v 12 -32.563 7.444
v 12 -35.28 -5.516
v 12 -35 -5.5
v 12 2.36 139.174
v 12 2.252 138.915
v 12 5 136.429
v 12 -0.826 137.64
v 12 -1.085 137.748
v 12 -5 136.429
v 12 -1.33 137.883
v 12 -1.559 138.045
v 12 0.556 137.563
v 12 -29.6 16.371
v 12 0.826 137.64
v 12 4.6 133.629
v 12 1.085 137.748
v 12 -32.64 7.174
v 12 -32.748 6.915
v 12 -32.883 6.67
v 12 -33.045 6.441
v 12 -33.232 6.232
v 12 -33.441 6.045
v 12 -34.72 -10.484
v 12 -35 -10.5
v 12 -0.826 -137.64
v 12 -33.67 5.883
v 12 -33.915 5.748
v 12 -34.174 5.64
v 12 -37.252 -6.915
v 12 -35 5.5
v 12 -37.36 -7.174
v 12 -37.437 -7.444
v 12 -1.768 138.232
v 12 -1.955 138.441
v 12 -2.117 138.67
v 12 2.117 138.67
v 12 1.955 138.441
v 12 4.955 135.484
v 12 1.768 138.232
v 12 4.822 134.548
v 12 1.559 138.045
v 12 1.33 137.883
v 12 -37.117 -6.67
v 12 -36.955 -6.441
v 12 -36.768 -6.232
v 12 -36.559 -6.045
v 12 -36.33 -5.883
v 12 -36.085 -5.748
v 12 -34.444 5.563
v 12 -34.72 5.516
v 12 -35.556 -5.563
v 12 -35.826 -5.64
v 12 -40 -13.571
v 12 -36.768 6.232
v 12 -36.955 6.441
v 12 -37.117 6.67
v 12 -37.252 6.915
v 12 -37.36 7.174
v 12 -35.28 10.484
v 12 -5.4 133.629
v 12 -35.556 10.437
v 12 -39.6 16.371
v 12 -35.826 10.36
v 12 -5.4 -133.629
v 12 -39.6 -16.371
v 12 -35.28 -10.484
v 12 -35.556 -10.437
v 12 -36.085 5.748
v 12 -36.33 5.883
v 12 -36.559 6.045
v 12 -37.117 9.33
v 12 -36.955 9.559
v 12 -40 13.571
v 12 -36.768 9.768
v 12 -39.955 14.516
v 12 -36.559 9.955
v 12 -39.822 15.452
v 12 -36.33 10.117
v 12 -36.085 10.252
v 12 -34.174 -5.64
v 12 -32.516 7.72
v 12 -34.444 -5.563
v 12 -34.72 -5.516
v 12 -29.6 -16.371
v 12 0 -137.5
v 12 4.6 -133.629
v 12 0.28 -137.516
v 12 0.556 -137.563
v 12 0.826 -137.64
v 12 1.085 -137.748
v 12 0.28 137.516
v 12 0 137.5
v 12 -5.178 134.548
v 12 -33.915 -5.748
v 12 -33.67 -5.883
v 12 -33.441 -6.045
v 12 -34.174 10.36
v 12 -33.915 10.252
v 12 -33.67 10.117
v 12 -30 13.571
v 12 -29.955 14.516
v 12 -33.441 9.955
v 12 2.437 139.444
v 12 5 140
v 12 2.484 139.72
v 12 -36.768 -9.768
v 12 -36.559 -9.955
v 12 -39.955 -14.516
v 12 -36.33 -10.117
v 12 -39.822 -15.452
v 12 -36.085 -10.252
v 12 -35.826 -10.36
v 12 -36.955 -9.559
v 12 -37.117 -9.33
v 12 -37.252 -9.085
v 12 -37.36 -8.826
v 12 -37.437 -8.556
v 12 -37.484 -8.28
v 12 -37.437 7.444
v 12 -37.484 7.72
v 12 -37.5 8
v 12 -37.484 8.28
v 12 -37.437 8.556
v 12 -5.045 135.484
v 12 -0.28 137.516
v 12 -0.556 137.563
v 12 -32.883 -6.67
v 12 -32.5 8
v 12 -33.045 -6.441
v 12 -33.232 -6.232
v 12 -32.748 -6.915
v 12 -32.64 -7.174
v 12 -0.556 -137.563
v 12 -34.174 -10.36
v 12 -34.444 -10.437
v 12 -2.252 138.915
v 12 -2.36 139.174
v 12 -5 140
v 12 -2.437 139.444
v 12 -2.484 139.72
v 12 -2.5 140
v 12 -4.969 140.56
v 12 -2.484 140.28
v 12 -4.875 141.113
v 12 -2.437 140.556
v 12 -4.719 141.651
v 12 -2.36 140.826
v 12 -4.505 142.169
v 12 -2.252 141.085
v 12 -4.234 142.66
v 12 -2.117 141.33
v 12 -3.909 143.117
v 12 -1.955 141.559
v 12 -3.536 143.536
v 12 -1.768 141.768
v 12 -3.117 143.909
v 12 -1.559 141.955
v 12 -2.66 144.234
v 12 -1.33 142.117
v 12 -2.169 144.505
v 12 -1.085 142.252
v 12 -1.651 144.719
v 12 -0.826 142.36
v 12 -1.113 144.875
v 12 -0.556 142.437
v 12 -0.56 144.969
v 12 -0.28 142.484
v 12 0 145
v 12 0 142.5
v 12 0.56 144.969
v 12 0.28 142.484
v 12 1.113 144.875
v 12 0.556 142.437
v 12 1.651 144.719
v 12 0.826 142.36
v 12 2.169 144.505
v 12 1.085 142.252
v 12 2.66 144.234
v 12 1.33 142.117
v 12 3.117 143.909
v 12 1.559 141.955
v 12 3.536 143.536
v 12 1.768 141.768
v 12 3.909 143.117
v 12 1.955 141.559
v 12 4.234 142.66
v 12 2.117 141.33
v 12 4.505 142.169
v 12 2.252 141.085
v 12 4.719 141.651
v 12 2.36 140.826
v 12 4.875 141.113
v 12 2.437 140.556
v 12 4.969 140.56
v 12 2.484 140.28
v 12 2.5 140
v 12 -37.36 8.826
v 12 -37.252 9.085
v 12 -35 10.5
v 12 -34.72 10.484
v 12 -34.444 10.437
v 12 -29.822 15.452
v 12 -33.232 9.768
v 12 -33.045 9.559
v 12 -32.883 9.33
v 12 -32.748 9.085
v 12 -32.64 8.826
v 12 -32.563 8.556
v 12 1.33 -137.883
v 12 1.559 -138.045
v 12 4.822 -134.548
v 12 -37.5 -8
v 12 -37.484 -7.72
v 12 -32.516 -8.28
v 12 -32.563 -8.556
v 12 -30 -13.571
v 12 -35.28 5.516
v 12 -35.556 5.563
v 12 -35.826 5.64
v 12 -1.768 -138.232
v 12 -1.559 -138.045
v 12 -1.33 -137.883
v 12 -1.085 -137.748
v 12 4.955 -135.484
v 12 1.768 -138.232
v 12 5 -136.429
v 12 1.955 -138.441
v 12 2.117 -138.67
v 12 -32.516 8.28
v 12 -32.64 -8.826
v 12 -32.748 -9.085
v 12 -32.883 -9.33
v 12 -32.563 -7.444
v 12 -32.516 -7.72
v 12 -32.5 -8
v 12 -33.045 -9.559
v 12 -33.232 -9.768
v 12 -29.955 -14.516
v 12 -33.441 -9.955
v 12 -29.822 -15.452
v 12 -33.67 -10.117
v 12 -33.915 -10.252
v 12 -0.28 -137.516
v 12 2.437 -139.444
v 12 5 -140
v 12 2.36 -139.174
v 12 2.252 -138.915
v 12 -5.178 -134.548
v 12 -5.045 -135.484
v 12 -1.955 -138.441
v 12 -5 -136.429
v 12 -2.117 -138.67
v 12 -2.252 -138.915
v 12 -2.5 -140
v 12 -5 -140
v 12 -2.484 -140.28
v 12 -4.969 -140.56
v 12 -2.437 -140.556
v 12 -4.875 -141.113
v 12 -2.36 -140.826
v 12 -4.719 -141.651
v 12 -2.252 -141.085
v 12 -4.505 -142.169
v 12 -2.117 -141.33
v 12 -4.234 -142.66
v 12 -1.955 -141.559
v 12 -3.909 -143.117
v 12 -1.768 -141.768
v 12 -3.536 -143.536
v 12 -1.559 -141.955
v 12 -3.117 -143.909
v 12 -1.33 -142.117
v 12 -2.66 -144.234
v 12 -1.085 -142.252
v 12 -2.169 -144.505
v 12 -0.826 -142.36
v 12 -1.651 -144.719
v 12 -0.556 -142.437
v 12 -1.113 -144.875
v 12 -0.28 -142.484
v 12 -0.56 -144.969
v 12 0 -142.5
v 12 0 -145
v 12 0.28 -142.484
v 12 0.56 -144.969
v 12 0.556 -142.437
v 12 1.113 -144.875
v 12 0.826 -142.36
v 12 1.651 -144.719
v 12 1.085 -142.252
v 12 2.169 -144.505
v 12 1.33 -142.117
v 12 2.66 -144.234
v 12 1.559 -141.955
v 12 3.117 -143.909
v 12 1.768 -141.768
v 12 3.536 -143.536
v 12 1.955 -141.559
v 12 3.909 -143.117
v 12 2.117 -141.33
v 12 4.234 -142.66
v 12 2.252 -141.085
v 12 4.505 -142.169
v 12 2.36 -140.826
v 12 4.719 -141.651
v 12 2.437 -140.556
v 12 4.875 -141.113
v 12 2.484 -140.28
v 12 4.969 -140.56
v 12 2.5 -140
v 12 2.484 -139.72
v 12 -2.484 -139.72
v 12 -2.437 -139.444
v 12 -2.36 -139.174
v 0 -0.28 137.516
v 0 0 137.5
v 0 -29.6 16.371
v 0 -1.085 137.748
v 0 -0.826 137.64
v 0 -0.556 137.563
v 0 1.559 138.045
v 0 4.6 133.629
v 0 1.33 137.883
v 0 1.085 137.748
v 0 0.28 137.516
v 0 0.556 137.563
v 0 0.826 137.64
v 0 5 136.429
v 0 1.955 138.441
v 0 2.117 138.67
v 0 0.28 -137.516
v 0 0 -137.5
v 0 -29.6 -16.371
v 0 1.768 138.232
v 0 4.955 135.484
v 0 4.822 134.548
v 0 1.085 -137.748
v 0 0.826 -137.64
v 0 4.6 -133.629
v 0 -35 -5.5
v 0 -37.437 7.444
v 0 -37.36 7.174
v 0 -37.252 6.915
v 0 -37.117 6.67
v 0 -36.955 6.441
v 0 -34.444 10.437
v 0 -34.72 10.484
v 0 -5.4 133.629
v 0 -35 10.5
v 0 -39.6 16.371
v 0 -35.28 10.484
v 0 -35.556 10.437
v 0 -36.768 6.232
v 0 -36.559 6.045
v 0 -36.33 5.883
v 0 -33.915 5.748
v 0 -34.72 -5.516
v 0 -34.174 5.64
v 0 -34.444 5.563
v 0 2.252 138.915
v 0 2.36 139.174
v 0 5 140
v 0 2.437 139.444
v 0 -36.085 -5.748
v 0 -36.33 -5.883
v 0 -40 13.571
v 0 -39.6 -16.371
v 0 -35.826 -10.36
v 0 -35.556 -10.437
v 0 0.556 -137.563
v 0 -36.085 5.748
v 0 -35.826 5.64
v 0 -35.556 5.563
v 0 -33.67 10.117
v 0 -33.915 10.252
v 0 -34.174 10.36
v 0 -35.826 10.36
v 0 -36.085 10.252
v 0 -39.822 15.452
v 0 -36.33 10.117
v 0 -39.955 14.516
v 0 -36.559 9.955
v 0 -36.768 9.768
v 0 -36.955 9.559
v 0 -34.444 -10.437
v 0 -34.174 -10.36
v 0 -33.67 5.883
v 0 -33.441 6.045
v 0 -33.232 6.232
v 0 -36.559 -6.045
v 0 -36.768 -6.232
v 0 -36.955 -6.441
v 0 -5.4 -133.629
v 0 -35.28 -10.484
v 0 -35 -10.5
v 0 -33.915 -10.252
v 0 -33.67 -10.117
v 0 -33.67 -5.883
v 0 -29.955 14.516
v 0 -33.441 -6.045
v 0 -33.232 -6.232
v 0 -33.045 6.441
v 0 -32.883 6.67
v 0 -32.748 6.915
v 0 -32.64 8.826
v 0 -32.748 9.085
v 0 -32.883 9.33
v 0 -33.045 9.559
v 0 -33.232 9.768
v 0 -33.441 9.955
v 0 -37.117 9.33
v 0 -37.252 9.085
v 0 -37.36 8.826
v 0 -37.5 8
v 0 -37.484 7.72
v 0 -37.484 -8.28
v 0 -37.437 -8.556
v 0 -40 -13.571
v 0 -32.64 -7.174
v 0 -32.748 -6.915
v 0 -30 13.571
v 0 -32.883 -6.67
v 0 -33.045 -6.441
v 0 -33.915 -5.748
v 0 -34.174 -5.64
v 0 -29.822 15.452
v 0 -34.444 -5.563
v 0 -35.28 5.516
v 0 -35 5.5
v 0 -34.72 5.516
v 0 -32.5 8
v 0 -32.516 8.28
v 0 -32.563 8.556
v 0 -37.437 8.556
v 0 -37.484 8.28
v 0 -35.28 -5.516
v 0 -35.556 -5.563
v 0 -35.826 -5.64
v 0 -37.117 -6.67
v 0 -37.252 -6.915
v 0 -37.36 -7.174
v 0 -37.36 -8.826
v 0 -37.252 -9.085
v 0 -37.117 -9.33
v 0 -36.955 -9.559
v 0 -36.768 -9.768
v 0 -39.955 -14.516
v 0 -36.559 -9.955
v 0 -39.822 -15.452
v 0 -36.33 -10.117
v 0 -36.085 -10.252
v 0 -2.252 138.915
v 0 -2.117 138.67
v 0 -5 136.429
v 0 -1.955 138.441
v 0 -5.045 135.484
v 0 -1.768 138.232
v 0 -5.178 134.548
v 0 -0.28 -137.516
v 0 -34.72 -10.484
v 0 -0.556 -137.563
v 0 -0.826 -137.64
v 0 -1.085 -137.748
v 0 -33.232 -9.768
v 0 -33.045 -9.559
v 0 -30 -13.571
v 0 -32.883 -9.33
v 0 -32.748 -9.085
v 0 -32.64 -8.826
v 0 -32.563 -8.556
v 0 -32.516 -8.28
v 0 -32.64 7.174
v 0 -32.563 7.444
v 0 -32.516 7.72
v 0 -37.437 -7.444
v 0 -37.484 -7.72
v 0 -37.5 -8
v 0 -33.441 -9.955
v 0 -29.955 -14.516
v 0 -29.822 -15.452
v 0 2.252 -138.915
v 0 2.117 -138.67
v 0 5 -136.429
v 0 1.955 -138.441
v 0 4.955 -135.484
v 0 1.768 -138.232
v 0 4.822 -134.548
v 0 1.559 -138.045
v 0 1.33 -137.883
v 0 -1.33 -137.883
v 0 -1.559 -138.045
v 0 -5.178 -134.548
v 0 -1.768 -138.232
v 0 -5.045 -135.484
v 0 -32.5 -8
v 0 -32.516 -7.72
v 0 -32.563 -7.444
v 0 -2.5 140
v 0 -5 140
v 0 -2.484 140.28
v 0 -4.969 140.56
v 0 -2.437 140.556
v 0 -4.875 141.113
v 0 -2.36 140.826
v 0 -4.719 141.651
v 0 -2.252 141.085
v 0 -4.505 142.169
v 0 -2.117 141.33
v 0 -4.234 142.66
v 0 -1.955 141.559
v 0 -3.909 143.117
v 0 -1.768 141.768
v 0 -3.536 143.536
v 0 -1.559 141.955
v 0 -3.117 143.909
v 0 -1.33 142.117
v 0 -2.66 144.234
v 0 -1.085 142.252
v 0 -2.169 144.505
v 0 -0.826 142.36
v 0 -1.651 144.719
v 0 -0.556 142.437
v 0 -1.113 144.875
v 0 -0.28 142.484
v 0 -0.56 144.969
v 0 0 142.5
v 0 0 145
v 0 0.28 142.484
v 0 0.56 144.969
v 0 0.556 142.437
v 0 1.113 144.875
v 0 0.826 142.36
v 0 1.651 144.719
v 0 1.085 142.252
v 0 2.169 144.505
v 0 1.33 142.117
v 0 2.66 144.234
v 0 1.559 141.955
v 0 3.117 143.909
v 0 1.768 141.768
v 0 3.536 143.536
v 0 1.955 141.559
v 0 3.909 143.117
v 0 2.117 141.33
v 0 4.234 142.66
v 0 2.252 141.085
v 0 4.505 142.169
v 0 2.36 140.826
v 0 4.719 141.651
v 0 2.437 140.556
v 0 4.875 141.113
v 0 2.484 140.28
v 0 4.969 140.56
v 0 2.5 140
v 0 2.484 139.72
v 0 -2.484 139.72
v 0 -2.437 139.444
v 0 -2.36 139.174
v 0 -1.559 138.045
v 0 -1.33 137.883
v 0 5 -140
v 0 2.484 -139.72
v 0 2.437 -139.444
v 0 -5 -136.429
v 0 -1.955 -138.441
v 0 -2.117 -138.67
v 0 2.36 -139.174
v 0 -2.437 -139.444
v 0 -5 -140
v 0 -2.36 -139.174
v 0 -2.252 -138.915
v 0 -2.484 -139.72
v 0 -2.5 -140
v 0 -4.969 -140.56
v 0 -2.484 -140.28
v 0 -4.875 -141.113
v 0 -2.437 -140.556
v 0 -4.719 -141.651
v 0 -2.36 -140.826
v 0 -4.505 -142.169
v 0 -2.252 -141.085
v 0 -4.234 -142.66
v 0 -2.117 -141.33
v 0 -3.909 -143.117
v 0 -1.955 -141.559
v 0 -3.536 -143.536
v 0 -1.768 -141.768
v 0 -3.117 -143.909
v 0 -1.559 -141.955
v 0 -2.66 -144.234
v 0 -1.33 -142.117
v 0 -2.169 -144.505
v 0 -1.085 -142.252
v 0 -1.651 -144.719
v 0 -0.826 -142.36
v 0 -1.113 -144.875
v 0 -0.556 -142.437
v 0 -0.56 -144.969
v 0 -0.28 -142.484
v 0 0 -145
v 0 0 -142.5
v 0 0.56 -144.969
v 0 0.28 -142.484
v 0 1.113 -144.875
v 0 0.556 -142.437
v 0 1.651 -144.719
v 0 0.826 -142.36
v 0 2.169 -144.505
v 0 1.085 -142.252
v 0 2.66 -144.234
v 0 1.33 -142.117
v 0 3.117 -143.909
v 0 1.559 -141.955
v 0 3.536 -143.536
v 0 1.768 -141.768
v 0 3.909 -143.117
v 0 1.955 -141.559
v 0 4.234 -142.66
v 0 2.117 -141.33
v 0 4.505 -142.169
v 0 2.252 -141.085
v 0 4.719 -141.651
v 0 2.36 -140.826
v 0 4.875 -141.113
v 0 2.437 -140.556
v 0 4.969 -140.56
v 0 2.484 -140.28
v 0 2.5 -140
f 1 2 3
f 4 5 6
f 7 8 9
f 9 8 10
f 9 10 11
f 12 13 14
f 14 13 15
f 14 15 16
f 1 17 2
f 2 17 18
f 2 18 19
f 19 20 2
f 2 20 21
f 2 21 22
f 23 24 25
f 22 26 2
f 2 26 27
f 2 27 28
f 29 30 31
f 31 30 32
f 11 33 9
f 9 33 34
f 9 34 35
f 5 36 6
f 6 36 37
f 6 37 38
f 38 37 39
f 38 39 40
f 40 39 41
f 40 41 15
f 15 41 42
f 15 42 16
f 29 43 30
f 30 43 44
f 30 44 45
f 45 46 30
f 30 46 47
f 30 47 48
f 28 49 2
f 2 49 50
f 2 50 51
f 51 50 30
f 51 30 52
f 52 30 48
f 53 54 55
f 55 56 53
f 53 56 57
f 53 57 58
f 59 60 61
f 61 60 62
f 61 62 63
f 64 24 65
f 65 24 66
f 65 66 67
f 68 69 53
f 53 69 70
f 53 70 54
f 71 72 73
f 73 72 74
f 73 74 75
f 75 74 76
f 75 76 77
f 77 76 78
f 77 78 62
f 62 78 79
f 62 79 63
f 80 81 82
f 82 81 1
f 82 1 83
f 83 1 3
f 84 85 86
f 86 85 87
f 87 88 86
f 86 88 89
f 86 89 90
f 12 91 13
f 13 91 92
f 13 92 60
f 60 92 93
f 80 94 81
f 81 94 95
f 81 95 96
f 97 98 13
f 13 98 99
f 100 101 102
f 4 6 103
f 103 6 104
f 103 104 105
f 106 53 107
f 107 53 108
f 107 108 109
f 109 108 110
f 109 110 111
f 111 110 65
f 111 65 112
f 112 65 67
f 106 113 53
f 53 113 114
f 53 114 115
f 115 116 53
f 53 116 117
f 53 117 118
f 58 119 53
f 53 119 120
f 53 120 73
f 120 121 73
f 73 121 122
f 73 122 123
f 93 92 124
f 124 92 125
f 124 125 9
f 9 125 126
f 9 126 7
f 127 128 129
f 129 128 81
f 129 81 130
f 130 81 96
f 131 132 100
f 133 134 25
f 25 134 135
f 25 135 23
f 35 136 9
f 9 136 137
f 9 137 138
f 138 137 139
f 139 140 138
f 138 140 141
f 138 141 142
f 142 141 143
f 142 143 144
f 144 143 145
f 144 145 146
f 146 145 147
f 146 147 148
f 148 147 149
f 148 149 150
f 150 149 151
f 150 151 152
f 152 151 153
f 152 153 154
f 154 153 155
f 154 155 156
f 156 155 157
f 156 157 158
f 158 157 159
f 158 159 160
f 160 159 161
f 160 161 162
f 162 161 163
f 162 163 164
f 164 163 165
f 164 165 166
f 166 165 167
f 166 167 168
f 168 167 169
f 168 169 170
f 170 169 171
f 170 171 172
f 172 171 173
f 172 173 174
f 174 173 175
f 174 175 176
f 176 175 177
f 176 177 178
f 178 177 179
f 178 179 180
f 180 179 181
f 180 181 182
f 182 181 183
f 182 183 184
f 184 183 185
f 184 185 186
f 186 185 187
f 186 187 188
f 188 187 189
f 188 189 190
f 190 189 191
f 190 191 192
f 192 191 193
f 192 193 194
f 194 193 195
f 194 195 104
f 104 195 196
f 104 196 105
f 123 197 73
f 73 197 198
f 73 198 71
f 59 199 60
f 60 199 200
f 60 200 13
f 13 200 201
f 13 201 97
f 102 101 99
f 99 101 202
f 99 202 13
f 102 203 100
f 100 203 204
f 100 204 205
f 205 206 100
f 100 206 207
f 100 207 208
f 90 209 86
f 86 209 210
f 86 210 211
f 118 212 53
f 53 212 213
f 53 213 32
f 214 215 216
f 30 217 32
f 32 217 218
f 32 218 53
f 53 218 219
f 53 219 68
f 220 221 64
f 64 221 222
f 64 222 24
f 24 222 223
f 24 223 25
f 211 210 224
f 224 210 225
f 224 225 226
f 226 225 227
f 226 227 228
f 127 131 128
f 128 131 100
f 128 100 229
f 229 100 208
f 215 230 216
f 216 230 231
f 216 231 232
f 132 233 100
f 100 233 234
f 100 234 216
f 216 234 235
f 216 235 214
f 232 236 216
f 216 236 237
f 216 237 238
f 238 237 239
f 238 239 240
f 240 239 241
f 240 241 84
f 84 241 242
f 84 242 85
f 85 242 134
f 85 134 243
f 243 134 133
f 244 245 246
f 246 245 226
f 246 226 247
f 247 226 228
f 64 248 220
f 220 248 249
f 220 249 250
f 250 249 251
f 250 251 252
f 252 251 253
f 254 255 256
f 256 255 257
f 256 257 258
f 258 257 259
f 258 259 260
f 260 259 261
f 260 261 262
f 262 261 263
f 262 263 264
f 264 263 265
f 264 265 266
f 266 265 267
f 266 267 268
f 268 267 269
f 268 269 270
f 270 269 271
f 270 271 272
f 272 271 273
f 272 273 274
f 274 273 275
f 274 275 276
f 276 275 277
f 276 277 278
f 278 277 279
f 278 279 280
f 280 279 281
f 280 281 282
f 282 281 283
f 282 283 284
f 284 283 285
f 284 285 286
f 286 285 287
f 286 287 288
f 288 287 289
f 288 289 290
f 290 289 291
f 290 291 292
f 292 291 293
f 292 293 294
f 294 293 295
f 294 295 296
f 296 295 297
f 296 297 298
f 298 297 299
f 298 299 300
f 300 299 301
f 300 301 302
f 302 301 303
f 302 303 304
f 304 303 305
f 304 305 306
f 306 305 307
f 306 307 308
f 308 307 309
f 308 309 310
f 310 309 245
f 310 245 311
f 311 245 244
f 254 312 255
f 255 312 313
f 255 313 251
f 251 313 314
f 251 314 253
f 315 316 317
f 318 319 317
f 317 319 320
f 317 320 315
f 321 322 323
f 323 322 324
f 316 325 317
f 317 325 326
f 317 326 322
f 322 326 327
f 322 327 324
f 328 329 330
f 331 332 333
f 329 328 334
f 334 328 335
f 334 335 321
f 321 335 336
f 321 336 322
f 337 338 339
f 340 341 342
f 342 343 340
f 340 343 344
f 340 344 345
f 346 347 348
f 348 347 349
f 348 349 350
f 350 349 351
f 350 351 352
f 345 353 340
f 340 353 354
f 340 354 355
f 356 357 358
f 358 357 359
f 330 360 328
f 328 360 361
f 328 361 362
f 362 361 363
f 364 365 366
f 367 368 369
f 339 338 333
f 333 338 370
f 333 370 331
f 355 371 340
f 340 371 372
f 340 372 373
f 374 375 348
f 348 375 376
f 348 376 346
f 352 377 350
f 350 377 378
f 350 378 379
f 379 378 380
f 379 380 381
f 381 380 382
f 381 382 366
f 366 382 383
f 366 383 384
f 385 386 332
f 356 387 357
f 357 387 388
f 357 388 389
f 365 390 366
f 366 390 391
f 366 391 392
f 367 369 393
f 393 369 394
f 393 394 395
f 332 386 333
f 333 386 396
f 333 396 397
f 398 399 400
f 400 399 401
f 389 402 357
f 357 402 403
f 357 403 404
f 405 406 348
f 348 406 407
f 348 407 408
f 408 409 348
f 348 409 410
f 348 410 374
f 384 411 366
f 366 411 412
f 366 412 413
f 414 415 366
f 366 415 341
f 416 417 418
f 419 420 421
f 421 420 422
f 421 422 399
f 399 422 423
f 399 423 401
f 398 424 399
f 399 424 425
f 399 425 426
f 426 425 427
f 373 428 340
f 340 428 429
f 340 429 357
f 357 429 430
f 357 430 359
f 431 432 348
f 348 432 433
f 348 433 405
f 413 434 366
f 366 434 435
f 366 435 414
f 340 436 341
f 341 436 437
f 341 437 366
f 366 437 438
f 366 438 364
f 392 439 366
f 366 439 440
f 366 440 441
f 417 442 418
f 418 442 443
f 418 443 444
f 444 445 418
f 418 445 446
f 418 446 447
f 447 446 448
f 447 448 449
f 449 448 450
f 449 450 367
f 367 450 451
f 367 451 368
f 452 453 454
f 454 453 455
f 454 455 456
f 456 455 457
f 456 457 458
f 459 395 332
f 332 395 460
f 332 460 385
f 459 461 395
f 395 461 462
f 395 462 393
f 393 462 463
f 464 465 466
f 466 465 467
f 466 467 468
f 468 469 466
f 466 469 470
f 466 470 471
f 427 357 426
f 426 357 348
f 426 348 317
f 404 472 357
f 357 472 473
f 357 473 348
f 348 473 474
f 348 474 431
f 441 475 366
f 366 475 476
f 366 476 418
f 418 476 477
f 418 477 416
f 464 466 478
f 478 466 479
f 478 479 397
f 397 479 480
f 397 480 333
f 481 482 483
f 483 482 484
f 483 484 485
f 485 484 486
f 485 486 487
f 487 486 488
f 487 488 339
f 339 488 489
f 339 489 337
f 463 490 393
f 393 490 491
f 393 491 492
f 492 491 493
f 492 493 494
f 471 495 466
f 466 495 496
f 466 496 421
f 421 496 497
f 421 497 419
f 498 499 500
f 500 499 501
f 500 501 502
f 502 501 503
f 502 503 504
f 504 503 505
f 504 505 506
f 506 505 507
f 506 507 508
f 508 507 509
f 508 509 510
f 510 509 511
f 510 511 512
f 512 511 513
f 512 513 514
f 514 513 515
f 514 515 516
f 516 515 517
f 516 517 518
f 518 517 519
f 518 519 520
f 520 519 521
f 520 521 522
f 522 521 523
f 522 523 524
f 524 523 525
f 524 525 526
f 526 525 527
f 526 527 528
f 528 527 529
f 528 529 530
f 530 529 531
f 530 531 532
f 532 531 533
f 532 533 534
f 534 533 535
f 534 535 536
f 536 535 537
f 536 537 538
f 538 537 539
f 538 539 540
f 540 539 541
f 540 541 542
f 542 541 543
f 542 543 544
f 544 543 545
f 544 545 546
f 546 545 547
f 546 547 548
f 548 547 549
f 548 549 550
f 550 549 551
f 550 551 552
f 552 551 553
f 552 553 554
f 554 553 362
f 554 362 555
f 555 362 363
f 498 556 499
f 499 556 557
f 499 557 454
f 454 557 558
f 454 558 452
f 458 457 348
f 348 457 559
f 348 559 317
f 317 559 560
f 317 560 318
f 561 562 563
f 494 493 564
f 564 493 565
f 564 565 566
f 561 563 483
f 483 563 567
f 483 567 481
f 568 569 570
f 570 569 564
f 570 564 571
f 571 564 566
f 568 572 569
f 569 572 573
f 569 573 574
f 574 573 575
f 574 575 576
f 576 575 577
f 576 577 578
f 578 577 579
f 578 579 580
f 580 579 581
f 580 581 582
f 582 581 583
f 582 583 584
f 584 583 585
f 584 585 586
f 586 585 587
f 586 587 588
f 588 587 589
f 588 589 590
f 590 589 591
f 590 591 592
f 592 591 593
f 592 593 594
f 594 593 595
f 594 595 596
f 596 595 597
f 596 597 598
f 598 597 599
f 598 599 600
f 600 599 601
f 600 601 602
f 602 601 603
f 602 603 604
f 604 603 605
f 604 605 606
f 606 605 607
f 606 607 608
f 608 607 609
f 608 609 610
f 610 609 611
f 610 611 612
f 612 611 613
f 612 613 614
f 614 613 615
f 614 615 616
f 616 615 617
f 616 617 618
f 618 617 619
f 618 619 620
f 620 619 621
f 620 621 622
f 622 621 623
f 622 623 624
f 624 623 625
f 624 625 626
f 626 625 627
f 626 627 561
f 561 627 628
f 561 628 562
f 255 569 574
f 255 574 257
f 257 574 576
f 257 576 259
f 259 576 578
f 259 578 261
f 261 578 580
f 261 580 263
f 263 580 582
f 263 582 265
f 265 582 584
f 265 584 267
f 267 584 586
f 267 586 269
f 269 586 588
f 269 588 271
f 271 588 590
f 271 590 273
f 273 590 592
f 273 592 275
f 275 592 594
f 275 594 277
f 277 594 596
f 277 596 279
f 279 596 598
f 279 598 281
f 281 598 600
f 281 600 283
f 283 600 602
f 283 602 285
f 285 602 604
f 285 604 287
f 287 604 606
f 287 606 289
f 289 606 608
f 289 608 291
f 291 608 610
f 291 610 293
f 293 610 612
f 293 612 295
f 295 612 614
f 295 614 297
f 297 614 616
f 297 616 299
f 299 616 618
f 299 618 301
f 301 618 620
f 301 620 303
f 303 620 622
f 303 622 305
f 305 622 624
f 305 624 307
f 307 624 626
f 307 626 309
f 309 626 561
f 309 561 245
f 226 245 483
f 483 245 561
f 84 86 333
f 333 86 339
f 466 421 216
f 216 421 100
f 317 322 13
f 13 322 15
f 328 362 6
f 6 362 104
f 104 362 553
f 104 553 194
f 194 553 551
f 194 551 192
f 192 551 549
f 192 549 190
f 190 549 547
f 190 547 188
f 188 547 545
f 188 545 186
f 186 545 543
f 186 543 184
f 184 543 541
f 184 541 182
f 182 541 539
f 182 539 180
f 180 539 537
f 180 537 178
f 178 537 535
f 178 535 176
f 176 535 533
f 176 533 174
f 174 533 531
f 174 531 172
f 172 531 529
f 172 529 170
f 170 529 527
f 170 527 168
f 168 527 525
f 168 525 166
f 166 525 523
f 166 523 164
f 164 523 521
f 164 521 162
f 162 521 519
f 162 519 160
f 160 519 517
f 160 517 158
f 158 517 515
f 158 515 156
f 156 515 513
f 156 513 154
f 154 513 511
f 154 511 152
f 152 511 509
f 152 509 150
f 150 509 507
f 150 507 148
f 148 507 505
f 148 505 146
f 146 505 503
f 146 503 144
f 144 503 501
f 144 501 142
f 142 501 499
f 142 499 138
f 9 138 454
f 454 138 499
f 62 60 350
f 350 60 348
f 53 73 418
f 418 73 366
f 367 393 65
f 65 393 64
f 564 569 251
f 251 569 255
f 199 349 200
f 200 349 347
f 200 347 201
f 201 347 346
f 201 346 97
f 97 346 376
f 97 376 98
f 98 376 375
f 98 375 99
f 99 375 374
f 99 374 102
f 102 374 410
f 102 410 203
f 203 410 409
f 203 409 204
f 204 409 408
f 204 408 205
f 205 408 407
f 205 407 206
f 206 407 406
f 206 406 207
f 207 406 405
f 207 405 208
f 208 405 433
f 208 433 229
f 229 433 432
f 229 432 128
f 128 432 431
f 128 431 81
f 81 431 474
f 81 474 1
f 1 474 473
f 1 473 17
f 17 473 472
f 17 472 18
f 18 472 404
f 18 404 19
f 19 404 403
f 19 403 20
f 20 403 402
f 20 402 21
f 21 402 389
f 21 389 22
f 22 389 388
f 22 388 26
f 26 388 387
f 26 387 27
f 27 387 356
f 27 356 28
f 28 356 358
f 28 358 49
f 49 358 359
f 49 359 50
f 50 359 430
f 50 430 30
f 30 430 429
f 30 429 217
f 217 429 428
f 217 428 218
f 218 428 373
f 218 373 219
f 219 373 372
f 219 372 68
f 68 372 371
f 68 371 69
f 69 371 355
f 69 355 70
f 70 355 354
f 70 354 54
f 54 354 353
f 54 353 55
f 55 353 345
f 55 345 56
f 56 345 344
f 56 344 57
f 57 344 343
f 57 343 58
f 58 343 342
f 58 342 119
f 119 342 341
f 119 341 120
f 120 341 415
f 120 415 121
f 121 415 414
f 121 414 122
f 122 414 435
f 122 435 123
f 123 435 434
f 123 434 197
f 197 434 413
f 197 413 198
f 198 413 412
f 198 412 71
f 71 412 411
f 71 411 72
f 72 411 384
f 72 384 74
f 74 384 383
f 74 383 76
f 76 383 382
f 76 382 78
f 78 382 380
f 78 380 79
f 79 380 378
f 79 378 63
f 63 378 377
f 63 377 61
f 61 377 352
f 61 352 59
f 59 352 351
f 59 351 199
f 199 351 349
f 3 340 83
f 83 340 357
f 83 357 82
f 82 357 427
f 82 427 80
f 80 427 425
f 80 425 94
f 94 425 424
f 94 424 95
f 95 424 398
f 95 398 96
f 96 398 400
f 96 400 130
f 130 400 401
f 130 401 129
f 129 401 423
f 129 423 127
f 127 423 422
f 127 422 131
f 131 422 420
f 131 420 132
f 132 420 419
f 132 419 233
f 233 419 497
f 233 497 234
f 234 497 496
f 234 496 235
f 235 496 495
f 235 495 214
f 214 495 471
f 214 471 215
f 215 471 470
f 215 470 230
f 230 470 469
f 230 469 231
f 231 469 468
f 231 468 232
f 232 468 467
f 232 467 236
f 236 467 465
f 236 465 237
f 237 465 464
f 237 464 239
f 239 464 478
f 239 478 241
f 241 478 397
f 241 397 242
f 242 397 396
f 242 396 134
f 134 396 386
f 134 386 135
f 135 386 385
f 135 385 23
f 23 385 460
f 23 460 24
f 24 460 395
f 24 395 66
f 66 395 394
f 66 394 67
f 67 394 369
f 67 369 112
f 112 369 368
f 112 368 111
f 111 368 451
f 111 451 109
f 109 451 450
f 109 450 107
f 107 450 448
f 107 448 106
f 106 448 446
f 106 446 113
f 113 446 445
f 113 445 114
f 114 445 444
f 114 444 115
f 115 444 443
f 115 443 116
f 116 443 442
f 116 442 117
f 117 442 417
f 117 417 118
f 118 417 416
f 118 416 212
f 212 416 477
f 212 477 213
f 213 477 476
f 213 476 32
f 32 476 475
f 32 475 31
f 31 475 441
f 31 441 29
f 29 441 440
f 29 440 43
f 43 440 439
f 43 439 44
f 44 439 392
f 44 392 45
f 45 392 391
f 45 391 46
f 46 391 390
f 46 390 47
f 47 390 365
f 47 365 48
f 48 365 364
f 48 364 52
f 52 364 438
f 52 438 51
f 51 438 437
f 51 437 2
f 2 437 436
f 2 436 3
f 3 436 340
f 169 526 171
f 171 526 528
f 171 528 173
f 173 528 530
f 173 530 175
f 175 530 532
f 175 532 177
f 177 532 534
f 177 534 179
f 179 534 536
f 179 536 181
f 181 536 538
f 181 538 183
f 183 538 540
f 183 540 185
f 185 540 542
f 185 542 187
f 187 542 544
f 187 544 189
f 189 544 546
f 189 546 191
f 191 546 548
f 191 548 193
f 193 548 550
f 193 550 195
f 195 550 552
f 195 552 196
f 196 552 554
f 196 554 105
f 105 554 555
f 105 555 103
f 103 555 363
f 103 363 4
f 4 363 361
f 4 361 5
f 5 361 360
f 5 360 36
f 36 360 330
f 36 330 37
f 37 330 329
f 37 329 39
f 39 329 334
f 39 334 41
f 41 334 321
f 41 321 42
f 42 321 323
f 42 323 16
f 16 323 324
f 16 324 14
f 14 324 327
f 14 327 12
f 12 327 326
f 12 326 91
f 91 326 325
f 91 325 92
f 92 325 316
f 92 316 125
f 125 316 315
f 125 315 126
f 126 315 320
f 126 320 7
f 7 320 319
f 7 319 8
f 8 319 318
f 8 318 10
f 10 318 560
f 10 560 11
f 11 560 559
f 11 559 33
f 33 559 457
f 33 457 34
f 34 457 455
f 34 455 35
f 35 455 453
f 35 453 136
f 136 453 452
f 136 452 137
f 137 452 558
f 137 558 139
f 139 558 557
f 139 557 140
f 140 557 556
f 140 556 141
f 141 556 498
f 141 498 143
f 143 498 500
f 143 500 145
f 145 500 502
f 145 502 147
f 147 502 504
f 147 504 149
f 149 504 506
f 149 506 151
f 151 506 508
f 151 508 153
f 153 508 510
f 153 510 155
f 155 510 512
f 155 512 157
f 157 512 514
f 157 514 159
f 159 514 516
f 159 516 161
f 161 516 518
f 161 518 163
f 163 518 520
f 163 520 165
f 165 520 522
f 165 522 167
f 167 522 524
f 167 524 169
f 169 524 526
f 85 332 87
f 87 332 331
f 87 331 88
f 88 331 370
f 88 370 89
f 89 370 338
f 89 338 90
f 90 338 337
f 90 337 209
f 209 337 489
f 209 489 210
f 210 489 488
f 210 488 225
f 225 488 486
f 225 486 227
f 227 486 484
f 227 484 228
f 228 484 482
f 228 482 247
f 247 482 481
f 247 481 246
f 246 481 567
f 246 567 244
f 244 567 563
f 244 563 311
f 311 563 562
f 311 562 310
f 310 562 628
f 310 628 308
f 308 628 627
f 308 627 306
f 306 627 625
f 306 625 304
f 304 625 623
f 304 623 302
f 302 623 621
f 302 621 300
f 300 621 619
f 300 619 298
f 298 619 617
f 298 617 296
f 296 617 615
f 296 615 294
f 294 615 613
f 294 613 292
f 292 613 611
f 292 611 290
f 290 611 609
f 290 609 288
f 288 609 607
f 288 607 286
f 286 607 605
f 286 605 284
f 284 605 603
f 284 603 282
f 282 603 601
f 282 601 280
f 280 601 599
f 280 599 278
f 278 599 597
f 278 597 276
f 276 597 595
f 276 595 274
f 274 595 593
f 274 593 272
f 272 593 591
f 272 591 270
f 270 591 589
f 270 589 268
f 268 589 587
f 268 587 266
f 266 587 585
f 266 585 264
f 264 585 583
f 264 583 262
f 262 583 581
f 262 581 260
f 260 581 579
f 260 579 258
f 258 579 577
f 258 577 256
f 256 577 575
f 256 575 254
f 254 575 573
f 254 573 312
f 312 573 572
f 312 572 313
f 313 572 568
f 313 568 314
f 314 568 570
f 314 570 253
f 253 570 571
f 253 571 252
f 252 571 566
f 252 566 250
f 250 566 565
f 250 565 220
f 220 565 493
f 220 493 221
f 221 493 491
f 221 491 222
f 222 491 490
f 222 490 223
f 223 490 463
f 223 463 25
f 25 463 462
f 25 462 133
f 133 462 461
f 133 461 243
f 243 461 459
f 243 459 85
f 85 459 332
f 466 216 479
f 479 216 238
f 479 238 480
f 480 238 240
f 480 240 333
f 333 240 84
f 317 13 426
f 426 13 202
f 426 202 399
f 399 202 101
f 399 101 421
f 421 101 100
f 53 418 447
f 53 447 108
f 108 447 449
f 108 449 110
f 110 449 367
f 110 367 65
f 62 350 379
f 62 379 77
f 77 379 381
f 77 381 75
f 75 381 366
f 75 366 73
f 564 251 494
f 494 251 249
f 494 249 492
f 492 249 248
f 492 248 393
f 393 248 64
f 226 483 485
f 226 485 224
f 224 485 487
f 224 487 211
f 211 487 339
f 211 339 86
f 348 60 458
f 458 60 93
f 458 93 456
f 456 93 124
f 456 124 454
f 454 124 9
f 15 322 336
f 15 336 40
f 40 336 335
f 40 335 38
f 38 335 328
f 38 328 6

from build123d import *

# Parameters (mm, degrees)
CROQUIS1_R              = 2.5
SALIENTE_EXTRUIR1_DEPTH = 12
REDONDEO1_R             = 10


with BuildPart() as part:
    # Croquis1 → Saliente-Extruir1 (new body)
    with BuildSketch(Plane(origin=(0, 0, 0), x_dir=(0, 0, -1), z_dir=(1, 0, 0))):
        with BuildLine():
            Line((-15, -30), (15, -30))
            Line((15, -30), (135, 5))
            Line((135, 5), (140, 5))
            ThreePointArc((140, 5), (145, 0), (140, -5))
            Line((140, -5), (135, -5))
            Line((135, -5), (15, -40))
            Line((15, -40), (-15, -40))
            Line((-15, -40), (-135, -5))
            Line((-135, -5), (-140, -5))
            ThreePointArc((-140, -5), (-145, 0), (-140, 5))
            Line((-140, 5), (-135, 5))
            Line((-135, 5), (-15, -30))
        make_face()
        with Locations((-8, -35)):
            Circle(CROQUIS1_R, mode=Mode.SUBTRACT)
        with Locations((8, -35)):
            Circle(CROQUIS1_R, mode=Mode.SUBTRACT)
        with Locations((-140, 0)):
            Circle(CROQUIS1_R, mode=Mode.SUBTRACT)
        with Locations((140, 0)):
            Circle(CROQUIS1_R, mode=Mode.SUBTRACT)
    extrude(amount=SALIENTE_EXTRUIR1_DEPTH)

    # Redondeo1
    redondeo1_edges = [part.edges().sort_by_distance(p)[0] for p in [
        (6, -5, -135),
        (6, -40, -15),
        (6, -40, 15),
        (6, -5, 135),
        (6, 5, 135),
        (6, -30, 15),
        (6, -30, -15),
        (6, 5, -135),
    ]]
    fillet(redondeo1_edges, radius=REDONDEO1_R)


solid = part.part
